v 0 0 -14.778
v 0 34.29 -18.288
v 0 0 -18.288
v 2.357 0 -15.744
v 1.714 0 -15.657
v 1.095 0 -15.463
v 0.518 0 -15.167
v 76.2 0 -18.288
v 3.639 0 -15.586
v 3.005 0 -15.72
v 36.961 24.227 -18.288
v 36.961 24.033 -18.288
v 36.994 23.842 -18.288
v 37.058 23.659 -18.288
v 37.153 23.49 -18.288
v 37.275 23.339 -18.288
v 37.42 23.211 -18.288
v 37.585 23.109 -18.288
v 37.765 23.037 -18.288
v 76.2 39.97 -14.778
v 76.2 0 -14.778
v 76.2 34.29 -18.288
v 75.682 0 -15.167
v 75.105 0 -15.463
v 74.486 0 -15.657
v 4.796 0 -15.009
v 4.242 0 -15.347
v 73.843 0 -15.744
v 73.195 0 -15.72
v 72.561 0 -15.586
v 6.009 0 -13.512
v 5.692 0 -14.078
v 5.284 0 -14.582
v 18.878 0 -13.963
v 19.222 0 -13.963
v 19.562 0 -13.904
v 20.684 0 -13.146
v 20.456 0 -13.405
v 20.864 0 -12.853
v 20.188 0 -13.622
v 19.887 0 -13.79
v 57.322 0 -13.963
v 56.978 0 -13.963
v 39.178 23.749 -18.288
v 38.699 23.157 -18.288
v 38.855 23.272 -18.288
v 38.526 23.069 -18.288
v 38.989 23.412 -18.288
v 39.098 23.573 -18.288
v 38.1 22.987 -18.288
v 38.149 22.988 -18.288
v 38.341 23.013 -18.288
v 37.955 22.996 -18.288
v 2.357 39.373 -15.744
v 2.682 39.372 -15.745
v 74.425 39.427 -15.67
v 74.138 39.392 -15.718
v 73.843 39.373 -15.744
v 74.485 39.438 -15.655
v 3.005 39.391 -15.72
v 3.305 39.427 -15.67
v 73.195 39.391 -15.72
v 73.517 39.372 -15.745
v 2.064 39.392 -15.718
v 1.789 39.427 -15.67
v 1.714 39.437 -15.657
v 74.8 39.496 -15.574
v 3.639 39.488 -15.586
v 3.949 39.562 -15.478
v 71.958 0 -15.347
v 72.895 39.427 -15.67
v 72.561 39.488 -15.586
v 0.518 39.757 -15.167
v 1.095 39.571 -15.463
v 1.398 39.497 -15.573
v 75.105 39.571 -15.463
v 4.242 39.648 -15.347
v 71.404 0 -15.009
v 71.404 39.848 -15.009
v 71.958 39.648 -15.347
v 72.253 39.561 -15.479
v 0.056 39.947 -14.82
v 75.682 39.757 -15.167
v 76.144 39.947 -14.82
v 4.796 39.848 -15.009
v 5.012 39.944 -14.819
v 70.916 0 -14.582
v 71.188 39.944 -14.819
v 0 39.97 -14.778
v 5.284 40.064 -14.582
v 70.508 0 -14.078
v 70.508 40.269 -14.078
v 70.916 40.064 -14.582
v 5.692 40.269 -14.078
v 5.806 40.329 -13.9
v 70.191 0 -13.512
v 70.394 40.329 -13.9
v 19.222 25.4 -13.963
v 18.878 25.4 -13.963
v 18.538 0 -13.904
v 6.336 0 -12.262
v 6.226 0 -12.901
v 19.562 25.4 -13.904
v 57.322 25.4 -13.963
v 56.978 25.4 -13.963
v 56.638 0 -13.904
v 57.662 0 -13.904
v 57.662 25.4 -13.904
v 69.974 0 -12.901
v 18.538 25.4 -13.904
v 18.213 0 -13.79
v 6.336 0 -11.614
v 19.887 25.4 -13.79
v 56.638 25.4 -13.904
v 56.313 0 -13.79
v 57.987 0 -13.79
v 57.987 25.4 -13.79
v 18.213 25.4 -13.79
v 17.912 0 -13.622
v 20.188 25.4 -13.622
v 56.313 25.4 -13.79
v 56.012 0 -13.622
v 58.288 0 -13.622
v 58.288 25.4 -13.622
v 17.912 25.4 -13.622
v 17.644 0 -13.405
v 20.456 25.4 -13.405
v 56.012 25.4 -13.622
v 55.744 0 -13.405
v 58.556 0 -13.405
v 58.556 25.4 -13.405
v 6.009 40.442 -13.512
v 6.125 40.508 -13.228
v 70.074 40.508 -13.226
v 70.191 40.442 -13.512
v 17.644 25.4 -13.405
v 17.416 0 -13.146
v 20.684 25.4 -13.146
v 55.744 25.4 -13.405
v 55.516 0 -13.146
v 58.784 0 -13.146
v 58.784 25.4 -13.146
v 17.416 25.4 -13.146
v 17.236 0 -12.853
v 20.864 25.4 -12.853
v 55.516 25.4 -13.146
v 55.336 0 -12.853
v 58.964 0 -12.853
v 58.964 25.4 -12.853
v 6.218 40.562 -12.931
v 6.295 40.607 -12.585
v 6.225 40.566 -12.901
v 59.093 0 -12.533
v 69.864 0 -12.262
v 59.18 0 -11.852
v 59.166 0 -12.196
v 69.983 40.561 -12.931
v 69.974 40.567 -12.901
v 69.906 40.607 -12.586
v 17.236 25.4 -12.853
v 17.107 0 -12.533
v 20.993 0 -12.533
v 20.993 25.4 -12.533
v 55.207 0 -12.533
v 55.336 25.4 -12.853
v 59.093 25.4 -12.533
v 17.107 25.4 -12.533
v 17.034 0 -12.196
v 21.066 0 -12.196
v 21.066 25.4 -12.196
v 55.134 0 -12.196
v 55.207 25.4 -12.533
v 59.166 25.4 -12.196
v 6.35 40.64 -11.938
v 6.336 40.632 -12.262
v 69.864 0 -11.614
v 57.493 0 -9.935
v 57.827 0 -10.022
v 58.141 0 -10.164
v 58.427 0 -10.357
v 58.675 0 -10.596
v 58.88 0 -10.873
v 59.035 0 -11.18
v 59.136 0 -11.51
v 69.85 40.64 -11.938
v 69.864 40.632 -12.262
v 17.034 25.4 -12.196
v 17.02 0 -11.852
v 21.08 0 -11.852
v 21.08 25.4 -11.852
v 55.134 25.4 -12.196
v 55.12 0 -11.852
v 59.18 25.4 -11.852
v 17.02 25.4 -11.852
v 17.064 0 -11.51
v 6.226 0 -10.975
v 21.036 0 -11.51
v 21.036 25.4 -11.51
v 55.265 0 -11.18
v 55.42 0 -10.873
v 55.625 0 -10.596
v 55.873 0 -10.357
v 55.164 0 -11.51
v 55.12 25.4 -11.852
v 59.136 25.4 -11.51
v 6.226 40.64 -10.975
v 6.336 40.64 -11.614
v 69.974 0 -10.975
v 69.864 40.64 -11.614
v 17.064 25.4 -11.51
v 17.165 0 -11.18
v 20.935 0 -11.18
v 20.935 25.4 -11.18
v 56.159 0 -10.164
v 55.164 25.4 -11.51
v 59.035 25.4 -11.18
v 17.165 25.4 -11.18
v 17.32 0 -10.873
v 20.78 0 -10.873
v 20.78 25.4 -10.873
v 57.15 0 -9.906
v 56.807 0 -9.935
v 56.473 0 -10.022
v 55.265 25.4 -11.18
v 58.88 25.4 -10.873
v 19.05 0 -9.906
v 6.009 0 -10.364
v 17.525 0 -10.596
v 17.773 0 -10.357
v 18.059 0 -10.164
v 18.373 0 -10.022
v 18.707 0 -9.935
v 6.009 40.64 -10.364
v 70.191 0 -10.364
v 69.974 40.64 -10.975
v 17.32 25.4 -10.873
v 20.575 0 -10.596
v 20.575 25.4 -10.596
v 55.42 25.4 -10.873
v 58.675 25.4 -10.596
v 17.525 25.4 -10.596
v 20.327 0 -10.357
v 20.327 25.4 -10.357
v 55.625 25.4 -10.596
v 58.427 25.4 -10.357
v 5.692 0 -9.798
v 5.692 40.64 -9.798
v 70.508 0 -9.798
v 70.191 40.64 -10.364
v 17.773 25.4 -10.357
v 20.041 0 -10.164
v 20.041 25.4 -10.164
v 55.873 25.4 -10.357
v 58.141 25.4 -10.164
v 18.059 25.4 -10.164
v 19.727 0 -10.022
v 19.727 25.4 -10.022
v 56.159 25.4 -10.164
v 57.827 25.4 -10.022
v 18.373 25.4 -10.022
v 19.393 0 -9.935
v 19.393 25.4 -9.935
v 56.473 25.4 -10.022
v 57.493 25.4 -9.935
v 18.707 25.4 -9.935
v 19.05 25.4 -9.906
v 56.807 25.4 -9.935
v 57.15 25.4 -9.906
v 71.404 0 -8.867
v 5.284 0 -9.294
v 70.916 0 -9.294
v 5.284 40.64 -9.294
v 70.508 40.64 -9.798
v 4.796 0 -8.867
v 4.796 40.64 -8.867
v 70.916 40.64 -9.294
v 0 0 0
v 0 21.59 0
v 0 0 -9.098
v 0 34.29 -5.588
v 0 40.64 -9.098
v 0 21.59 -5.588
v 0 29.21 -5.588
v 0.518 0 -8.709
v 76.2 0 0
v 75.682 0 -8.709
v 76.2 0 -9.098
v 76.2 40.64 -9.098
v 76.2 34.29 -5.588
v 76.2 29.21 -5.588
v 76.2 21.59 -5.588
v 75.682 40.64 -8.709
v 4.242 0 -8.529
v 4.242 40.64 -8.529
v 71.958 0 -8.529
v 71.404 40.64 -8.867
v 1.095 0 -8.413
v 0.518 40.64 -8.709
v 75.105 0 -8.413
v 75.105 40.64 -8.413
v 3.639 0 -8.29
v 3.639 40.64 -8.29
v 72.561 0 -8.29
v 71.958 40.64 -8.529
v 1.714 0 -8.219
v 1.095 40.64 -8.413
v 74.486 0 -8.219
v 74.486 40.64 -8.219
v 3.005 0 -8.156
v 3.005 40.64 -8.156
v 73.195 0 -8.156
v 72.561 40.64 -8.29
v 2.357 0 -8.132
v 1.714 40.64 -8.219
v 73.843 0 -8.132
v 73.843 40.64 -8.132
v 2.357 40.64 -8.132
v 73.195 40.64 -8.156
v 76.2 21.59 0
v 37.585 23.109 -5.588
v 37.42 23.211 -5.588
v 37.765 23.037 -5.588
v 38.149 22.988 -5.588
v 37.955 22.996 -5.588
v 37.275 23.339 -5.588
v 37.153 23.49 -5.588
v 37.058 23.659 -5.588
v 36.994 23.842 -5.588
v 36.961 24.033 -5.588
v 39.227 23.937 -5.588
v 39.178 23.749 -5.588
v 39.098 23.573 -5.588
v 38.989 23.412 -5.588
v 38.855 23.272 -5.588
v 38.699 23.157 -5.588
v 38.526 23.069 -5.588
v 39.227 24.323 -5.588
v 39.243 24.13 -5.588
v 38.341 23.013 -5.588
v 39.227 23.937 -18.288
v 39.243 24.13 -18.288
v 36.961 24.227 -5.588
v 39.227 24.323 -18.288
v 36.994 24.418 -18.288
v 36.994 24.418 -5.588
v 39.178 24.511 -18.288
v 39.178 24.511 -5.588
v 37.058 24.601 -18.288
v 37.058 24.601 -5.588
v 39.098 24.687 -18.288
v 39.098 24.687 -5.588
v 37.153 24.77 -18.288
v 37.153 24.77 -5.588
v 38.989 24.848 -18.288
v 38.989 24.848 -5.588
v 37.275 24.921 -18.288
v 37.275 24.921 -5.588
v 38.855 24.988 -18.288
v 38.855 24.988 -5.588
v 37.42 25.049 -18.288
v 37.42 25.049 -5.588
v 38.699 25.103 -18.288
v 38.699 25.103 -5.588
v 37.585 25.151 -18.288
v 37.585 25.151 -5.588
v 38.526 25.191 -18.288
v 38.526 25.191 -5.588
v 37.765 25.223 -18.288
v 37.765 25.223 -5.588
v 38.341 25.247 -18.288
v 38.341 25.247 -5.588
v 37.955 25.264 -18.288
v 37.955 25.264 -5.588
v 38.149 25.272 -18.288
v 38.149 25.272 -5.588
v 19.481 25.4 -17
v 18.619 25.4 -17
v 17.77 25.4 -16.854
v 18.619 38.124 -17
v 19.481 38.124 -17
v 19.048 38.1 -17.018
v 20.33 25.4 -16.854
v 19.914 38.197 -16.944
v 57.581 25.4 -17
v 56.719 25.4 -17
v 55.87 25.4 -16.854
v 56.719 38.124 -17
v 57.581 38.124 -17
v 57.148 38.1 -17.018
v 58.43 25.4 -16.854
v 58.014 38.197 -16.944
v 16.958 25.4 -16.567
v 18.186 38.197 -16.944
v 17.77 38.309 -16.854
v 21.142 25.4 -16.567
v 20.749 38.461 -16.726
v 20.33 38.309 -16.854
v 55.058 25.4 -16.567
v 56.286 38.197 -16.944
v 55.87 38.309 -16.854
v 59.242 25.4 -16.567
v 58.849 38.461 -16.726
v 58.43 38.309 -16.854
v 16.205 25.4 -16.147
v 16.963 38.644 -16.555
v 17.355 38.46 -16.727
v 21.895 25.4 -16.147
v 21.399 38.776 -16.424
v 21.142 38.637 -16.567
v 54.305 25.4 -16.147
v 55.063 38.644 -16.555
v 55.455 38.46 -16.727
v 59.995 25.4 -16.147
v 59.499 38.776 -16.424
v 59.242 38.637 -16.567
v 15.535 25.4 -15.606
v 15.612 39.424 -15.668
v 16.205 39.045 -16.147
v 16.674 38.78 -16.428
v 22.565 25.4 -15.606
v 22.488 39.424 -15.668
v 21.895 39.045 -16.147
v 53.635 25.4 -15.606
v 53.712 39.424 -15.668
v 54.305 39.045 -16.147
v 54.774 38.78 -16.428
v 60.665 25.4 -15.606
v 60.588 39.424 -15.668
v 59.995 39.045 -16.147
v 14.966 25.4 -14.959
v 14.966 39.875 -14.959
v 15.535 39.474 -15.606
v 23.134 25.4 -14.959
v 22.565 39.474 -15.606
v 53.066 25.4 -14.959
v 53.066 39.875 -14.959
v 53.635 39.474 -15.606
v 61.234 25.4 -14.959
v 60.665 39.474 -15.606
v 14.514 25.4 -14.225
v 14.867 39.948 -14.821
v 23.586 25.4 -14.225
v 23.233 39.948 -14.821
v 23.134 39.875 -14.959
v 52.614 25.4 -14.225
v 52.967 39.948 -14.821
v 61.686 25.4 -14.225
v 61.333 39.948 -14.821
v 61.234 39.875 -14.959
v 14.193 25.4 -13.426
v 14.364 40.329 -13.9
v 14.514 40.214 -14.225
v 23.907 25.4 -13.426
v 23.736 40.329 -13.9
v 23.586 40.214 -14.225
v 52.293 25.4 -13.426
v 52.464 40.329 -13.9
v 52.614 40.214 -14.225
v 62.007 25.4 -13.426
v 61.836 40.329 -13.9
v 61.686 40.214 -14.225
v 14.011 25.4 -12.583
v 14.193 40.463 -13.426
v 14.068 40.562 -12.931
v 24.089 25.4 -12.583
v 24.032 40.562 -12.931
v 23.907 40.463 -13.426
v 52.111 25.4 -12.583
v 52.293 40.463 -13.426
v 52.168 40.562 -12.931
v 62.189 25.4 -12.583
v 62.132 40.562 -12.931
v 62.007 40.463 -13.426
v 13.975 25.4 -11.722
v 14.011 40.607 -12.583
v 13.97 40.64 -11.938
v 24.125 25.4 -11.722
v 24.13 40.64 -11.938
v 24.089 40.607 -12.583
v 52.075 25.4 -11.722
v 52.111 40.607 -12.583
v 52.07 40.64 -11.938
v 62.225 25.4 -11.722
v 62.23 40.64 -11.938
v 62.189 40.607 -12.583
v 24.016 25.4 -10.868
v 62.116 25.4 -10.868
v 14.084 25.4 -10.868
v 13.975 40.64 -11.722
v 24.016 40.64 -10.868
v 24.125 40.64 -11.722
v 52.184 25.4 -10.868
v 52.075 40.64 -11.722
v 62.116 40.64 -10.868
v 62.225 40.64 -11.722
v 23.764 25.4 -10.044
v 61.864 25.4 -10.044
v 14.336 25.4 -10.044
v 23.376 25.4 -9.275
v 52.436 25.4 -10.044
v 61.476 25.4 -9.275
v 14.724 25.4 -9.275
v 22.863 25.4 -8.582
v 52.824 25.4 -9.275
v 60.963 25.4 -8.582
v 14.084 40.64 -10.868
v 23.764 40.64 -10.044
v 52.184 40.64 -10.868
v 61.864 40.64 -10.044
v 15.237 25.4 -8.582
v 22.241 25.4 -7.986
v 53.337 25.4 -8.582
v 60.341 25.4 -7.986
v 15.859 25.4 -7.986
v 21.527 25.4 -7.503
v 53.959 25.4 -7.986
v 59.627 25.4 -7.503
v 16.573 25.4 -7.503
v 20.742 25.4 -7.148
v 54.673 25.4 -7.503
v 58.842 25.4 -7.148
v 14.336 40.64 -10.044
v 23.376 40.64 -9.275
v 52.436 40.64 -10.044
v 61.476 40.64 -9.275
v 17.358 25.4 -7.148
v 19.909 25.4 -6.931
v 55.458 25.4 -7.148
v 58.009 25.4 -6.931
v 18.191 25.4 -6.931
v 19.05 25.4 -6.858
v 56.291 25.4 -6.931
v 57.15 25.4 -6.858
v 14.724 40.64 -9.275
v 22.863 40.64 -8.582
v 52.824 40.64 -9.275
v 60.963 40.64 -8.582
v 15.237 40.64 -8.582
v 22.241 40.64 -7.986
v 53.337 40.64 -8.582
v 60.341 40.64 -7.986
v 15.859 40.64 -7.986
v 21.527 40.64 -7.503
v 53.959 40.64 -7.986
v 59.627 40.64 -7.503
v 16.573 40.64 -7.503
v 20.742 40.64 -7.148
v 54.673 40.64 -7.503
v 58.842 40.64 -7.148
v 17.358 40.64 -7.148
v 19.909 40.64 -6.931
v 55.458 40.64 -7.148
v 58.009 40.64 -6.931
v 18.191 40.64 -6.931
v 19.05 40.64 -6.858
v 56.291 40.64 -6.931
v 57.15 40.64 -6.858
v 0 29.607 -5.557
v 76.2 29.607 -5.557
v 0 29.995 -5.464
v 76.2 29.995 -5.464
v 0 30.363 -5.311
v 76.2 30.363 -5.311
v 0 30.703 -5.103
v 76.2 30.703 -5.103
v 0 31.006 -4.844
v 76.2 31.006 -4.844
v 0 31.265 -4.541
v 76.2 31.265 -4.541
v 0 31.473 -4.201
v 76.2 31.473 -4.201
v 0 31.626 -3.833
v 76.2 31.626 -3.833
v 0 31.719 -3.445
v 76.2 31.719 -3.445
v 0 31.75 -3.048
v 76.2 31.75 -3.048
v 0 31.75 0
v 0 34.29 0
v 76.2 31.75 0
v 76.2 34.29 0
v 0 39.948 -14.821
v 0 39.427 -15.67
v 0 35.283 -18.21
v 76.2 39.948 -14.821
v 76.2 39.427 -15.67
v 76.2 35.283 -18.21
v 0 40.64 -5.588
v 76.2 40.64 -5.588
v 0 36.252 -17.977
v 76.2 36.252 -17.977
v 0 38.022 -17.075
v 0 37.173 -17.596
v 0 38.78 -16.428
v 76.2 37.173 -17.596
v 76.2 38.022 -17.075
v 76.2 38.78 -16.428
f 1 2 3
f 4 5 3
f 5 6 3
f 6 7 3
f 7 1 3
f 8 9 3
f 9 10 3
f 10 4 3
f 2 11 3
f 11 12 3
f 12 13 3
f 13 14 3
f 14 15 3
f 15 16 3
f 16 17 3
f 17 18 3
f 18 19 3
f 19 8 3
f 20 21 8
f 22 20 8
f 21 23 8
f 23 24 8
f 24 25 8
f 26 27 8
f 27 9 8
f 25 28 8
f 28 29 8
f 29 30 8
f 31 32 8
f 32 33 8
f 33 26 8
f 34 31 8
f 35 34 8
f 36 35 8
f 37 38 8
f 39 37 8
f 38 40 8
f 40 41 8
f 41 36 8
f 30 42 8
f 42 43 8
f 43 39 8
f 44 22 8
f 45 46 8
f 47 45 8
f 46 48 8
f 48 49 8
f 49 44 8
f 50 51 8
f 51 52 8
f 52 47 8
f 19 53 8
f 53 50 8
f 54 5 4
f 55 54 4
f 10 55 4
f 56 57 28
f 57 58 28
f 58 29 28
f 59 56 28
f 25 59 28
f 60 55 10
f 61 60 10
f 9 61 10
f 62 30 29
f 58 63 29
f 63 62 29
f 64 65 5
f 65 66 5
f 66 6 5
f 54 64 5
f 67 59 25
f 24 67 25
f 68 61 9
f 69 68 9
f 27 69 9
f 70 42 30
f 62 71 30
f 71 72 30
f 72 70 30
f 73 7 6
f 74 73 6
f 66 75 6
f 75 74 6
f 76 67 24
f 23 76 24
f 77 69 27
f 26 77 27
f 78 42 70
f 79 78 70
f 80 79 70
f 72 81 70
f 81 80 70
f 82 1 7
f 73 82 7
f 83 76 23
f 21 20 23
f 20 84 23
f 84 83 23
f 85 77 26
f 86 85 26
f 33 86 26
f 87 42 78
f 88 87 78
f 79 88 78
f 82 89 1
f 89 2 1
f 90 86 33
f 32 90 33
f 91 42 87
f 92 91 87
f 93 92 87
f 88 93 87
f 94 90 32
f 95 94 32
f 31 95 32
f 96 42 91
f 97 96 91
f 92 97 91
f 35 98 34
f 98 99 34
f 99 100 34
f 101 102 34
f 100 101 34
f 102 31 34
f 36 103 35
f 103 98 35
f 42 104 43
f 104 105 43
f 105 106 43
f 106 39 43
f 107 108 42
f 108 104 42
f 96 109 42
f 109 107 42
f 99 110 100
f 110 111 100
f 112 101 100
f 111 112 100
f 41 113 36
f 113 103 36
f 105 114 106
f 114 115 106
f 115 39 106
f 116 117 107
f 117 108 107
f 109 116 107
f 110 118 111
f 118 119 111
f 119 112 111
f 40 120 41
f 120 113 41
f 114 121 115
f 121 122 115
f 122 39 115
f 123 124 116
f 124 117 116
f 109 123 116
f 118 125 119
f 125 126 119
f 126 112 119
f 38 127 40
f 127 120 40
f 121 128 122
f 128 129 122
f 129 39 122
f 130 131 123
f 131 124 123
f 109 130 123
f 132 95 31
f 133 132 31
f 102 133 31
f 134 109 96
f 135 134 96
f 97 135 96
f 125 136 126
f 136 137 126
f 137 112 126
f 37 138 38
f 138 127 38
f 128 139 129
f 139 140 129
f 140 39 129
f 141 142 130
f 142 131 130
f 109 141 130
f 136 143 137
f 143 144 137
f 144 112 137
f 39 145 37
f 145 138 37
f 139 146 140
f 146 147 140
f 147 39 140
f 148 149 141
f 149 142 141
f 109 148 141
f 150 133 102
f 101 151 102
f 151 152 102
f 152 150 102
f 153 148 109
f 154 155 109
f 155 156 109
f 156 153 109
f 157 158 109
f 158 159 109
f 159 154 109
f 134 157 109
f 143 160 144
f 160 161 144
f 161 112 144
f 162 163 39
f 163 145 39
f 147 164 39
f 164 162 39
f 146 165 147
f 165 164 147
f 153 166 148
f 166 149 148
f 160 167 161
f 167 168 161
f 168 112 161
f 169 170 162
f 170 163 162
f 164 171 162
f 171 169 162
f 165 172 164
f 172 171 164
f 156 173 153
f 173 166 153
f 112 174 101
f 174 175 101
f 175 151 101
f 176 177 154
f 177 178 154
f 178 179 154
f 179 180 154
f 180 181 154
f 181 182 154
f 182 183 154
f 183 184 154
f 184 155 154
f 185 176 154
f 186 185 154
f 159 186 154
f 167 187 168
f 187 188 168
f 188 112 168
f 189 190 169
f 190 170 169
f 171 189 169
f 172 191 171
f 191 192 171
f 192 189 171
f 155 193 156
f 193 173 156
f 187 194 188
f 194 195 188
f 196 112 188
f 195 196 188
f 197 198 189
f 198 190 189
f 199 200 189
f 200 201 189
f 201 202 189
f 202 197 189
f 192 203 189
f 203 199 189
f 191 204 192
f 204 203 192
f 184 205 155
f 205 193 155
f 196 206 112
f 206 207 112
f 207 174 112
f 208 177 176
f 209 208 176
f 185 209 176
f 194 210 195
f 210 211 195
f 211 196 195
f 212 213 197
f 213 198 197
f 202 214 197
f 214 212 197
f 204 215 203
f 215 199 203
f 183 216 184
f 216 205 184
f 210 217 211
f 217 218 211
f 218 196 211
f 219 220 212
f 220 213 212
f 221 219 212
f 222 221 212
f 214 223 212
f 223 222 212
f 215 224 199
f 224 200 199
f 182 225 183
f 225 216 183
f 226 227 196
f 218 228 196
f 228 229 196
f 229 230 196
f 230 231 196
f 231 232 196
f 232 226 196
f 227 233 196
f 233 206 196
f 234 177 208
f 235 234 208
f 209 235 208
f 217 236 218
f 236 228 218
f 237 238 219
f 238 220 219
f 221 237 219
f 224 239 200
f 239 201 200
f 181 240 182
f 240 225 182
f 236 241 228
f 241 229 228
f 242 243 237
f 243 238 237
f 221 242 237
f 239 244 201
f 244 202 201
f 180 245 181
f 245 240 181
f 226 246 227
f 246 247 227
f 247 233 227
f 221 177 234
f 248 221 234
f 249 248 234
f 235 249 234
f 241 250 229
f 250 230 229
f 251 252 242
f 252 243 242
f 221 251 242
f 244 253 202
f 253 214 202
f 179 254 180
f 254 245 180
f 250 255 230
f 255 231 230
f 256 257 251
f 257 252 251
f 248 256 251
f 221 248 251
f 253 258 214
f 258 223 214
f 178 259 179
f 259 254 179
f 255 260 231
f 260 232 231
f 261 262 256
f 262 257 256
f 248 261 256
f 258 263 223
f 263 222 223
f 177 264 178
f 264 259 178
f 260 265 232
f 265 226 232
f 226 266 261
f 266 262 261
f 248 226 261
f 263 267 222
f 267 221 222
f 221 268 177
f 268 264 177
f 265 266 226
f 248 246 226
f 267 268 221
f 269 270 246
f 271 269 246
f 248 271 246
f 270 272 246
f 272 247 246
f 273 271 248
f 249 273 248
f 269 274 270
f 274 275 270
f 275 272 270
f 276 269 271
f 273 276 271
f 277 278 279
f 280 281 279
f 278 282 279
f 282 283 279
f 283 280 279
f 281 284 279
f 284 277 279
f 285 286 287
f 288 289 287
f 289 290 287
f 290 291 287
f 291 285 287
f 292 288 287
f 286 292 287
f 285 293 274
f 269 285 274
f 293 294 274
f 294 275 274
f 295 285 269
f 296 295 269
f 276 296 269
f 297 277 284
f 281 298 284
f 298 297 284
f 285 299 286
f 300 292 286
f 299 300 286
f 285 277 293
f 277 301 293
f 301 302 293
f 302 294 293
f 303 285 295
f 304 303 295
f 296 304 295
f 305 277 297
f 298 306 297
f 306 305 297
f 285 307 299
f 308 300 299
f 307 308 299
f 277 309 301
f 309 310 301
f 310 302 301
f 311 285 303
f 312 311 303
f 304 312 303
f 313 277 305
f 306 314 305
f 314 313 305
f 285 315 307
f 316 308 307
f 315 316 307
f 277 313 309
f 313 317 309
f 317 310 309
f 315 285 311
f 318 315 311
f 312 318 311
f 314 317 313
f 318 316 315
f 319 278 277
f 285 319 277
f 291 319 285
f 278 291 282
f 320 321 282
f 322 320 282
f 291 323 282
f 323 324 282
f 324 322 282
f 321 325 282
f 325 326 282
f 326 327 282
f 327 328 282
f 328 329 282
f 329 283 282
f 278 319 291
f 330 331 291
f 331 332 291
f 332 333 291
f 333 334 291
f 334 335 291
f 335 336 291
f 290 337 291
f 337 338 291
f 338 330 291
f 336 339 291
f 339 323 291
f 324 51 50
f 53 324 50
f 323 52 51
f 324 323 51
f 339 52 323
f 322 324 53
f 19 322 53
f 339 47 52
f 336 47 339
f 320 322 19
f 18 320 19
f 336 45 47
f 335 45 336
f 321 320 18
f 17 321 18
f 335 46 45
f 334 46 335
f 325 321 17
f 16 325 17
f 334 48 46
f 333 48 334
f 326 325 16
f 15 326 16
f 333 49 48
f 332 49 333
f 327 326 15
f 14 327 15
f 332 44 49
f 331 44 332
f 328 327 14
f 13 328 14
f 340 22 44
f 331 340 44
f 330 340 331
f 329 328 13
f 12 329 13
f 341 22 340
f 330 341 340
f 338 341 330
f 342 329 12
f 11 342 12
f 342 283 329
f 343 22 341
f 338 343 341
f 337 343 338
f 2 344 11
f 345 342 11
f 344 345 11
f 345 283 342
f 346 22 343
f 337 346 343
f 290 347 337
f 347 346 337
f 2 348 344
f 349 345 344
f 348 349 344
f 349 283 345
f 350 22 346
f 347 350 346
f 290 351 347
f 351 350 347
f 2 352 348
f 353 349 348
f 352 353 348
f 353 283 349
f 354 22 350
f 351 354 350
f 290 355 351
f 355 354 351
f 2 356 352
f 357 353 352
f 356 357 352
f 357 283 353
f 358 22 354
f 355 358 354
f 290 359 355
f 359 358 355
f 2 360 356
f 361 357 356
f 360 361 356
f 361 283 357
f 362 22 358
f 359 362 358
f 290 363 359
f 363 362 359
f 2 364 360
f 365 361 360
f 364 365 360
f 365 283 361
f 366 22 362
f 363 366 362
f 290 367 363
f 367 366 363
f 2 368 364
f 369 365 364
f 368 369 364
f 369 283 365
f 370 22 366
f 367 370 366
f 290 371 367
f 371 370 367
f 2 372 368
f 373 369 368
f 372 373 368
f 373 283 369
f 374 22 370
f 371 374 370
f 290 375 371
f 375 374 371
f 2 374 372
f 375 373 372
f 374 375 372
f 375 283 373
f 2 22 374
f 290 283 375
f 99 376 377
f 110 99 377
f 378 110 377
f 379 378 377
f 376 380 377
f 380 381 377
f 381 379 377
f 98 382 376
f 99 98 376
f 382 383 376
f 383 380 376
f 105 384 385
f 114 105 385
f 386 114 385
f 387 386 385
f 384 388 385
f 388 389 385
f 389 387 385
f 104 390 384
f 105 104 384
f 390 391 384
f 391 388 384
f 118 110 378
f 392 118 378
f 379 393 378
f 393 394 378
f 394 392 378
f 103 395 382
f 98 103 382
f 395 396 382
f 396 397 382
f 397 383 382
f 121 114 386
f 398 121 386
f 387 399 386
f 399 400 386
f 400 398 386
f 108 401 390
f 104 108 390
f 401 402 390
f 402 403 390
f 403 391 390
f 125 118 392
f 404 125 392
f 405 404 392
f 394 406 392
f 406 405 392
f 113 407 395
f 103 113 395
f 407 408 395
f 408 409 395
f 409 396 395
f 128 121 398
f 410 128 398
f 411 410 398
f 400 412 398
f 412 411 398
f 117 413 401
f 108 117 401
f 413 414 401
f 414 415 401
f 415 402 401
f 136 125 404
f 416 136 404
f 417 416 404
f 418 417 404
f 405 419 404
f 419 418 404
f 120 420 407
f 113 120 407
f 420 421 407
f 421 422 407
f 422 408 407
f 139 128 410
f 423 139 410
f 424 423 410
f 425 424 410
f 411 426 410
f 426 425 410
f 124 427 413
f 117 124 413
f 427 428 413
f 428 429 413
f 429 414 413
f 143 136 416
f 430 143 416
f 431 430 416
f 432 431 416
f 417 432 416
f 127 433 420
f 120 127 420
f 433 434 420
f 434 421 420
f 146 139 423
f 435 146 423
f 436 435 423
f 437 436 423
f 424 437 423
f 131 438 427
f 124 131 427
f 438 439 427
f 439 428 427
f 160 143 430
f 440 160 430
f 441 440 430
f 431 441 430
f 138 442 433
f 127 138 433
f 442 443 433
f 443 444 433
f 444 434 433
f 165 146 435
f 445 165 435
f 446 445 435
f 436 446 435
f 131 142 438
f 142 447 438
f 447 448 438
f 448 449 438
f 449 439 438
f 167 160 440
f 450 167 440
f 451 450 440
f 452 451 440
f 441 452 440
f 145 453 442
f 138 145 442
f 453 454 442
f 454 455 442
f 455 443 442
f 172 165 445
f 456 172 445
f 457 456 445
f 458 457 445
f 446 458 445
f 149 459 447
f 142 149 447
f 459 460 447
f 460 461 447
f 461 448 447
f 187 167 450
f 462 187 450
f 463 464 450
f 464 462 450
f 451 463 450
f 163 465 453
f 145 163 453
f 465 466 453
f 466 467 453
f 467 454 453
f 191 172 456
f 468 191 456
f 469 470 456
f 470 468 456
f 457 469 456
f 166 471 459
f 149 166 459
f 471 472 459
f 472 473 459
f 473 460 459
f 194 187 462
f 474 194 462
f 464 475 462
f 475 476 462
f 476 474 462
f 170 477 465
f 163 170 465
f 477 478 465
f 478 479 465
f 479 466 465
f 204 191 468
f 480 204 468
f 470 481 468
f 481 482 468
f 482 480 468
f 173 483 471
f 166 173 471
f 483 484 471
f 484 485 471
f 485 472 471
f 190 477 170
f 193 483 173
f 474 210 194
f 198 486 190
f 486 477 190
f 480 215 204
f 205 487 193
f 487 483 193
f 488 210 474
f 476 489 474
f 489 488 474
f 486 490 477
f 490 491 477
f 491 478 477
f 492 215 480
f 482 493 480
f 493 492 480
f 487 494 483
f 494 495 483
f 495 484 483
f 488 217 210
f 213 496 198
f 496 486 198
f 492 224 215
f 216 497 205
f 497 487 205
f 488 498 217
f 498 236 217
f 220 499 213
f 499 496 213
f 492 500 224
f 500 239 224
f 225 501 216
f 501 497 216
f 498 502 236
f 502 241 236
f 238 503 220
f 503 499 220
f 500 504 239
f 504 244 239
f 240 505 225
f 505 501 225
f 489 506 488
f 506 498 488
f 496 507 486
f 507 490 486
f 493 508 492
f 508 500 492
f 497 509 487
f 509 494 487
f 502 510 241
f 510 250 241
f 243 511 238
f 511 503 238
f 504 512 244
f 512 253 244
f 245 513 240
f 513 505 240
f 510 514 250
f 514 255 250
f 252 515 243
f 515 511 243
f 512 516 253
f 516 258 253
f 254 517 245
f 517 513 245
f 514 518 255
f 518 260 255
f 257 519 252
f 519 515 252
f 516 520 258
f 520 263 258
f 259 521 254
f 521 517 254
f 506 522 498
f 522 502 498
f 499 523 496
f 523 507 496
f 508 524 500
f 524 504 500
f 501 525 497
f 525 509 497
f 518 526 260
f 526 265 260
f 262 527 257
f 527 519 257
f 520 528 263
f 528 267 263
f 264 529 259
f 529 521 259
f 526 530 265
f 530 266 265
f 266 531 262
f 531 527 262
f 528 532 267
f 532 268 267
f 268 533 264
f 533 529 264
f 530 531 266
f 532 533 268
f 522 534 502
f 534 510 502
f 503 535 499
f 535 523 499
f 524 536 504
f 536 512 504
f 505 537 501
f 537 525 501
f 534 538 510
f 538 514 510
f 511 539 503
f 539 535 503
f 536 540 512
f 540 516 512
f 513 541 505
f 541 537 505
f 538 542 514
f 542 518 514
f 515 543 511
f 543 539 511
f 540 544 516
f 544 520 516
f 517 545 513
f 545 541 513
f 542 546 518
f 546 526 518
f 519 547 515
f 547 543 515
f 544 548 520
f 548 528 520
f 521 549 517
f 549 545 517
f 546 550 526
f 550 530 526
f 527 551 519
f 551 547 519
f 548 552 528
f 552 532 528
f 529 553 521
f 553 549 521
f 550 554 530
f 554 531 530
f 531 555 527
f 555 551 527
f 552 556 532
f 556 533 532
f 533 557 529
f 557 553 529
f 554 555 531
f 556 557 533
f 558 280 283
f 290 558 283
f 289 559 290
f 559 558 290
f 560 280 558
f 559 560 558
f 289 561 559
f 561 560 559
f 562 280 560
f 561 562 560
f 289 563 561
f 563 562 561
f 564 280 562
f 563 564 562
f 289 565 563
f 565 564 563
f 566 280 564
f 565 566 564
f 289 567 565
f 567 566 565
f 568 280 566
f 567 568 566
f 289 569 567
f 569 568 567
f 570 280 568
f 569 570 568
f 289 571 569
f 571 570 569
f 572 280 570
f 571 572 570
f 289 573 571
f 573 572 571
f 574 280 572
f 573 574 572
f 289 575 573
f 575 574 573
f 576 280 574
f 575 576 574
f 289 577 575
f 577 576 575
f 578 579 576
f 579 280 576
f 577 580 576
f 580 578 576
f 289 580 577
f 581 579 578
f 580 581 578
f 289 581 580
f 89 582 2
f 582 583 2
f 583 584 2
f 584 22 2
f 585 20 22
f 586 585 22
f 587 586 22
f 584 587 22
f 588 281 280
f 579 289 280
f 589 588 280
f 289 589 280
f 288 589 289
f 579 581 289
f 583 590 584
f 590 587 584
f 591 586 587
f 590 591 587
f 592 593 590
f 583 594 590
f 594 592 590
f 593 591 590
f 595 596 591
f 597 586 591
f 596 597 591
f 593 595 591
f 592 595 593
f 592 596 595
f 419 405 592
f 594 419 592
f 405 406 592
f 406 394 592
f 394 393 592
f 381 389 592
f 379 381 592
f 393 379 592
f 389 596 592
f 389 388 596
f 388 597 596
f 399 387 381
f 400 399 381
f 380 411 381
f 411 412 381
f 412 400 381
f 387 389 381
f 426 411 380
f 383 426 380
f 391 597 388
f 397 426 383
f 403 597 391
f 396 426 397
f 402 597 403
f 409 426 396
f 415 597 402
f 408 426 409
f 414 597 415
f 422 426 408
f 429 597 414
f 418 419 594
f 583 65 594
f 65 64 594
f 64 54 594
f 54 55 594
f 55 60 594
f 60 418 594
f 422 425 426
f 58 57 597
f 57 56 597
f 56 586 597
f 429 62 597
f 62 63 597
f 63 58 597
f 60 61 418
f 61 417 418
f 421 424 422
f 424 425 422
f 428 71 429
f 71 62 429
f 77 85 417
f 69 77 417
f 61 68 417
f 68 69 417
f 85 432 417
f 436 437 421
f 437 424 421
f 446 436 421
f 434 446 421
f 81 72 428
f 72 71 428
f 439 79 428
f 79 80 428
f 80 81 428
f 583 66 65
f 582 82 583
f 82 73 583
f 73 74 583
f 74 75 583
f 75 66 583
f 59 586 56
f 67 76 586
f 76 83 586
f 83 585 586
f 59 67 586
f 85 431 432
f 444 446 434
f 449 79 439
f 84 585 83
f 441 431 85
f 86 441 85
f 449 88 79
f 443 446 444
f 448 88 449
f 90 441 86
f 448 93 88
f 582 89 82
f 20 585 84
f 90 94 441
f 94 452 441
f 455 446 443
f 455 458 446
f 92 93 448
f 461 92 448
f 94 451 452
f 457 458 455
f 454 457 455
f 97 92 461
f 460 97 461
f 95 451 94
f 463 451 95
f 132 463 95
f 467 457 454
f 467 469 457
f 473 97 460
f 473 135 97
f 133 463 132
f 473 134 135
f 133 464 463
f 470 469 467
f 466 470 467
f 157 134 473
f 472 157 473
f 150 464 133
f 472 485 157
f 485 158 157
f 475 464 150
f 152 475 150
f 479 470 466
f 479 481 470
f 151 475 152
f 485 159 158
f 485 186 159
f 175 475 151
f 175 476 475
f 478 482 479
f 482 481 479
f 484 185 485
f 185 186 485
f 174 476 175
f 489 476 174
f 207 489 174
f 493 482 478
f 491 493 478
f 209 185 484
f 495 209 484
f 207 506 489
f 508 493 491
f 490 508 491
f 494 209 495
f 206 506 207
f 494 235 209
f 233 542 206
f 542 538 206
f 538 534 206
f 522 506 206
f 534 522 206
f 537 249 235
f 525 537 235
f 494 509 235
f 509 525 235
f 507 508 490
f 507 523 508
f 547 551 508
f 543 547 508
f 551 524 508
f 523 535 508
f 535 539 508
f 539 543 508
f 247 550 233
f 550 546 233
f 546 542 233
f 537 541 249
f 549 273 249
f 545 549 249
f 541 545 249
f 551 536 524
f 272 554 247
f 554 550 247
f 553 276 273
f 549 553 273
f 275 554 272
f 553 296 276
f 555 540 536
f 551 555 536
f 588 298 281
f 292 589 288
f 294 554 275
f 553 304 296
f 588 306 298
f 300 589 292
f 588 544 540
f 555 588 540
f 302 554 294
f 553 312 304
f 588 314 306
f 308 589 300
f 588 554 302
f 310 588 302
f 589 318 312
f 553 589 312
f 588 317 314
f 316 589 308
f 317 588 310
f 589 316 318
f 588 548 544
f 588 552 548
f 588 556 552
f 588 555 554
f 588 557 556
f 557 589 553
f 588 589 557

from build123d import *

# Parameters (mm, degrees)
SKETCH2_W           = 18.288
SKETCH2_H           = 40.64
BOSS_EXTRUDE1_DEPTH = 76.2
CUT_EXTRUDE1_REACH  = 90.275
SKETCH3_W           = 5.588
SKETCH3_H           = 6.35
SKETCH3_H_2         = 10.16
CUT_EXTRUDE2_REACH  = 89.289
SKETCH4_R           = 1.143
CUT_EXTRUDE3_REACH  = 90.275
SKETCH5_R           = 2.032
SKETCH6_R           = 5.08
CUT_EXTRUDE4_DEPTH  = 15.24
FILLET1_R           = 6.35
FILLET2_R           = 2.54
SKETCH7_R           = 3.81
CUT_EXTRUDE5_DEPTH  = 89.275141297


with BuildPart() as part:
    # Sketch2 → Boss-Extrude1 (new body)
    with BuildSketch(Plane(origin=(0, 0, 0), x_dir=(0, 0, -1), z_dir=(1, 0, 0))):
        with Locations((9.144, 20.32)):
            Rectangle(SKETCH2_W, SKETCH2_H)
    extrude(amount=BOSS_EXTRUDE1_DEPTH)

    # Sketch3 → Cut-Extrude1 (cut, up to next)
    with BuildSketch(Plane.ZY, mode=Mode.PRIVATE) as cut_extrude1_sk1:
        with Locations((-2.794, 37.465)):
            Rectangle(SKETCH3_W, SKETCH3_H)
    cut_extrude1_tool1 = extrude(cut_extrude1_sk1.sketch, amount=-CUT_EXTRUDE1_REACH, mode=Mode.PRIVATE) & part.part
    # Sketch3 → Cut-Extrude1 (cut, up to next)
    with BuildSketch(Plane.ZY, mode=Mode.PRIVATE) as cut_extrude1_sk2:
        with Locations((-2.794, 26.67)):
            Rectangle(SKETCH3_W, SKETCH3_H_2)
    cut_extrude1_tool2 = extrude(cut_extrude1_sk2.sketch, amount=-CUT_EXTRUDE1_REACH, mode=Mode.PRIVATE) & part.part
    add(cut_extrude1_tool1.solids().sort_by_distance((0, 37.465, -2.794))[0], mode=Mode.SUBTRACT)
    add(cut_extrude1_tool2.solids().sort_by_distance((0, 26.67, -2.794))[0], mode=Mode.SUBTRACT)

    # Sketch4 → Cut-Extrude2 (cut, up to next)
    with BuildSketch(Plane.XY.offset(-5.588), mode=Mode.PRIVATE) as cut_extrude2_sk1:
        with Locations((38.1, 24.13)):
            Circle(SKETCH4_R)
    cut_extrude2_tool1 = extrude(cut_extrude2_sk1.sketch, amount=-CUT_EXTRUDE2_REACH, mode=Mode.PRIVATE) & part.part
    add(cut_extrude2_tool1.solids().sort_by_distance((38.1, 24.13, -5.588))[0], mode=Mode.SUBTRACT)

    # Sketch5 → Cut-Extrude3 (cut, up to next)
    with BuildSketch(Plane(origin=(0, 40.64, 0), x_dir=(1, 0, 0), z_dir=(0, 1, 0)), mode=Mode.PRIVATE) as cut_extrude3_sk1:
        with Locations(Location((57.15, 11.938, 0), (0, 0, 270))):
            Circle(SKETCH5_R)
    cut_extrude3_tool1 = extrude(cut_extrude3_sk1.sketch, amount=-CUT_EXTRUDE3_REACH, mode=Mode.PRIVATE) & part.part
    # Sketch5 → Cut-Extrude3 (cut, up to next)
    with BuildSketch(Plane(origin=(0, 40.64, 0), x_dir=(1, 0, 0), z_dir=(0, 1, 0)), mode=Mode.PRIVATE) as cut_extrude3_sk2:
        with Locations(Location((19.05, 11.938, 0), (0, 0, 270))):
            Circle(SKETCH5_R)
    cut_extrude3_tool2 = extrude(cut_extrude3_sk2.sketch, amount=-CUT_EXTRUDE3_REACH, mode=Mode.PRIVATE) & part.part
    add(cut_extrude3_tool1.solids().sort_by_distance((57.15, 40.64, -11.938))[0], mode=Mode.SUBTRACT)
    add(cut_extrude3_tool2.solids().sort_by_distance((19.05, 40.64, -11.938))[0], mode=Mode.SUBTRACT)

    # Sketch6 → Cut-Extrude4 (cut)
    with BuildSketch(Plane(origin=(0, 40.64, 0), x_dir=(1, 0, 0), z_dir=(0, 1, 0))):
        with Locations(Location((19.05, 11.938, 0), (0, 0, 270))):
            Circle(SKETCH6_R)
        with Locations(Location((57.15, 11.938, 0), (0, 0, 270))):
            Circle(SKETCH6_R)
    extrude(amount=-CUT_EXTRUDE4_DEPTH, mode=Mode.SUBTRACT)

    # Fillet1
    # the kernel refuses this fillet: 6.35 mm, written as the material it takes off along each edge
    with BuildSketch(Plane(origin=(-15.875, 40.64, -18.288), x_dir=(0, -1, 0), z_dir=(1, 0, 0))) as fillet1_piece_1:
        with BuildLine():
            CenterArc((FILLET1_R, -FILLET1_R), FILLET1_R, 90, 90)
            Line((0, -FILLET1_R), (0, 0))
            Line((0, 0), (FILLET1_R, 0))
        make_face()
    extrude(amount=107.95, mode=Mode.SUBTRACT)

    # Fillet2
    fillet2_edges = [part.edges().sort_by_distance(p)[0] for p in [
        (38.1, 31.75, -5.588),
    ]]
    fillet(fillet2_edges, radius=FILLET2_R)

    # Sketch7 → Cut-Extrude5 (cut, through all)
    with BuildSketch(Plane.XZ):
        with Locations((2.54, -11.938)):
            Circle(SKETCH7_R)
        with Locations((73.66, -11.938)):
            Circle(SKETCH7_R)
    extrude(amount=-CUT_EXTRUDE5_DEPTH, mode=Mode.SUBTRACT)


solid = part.part
